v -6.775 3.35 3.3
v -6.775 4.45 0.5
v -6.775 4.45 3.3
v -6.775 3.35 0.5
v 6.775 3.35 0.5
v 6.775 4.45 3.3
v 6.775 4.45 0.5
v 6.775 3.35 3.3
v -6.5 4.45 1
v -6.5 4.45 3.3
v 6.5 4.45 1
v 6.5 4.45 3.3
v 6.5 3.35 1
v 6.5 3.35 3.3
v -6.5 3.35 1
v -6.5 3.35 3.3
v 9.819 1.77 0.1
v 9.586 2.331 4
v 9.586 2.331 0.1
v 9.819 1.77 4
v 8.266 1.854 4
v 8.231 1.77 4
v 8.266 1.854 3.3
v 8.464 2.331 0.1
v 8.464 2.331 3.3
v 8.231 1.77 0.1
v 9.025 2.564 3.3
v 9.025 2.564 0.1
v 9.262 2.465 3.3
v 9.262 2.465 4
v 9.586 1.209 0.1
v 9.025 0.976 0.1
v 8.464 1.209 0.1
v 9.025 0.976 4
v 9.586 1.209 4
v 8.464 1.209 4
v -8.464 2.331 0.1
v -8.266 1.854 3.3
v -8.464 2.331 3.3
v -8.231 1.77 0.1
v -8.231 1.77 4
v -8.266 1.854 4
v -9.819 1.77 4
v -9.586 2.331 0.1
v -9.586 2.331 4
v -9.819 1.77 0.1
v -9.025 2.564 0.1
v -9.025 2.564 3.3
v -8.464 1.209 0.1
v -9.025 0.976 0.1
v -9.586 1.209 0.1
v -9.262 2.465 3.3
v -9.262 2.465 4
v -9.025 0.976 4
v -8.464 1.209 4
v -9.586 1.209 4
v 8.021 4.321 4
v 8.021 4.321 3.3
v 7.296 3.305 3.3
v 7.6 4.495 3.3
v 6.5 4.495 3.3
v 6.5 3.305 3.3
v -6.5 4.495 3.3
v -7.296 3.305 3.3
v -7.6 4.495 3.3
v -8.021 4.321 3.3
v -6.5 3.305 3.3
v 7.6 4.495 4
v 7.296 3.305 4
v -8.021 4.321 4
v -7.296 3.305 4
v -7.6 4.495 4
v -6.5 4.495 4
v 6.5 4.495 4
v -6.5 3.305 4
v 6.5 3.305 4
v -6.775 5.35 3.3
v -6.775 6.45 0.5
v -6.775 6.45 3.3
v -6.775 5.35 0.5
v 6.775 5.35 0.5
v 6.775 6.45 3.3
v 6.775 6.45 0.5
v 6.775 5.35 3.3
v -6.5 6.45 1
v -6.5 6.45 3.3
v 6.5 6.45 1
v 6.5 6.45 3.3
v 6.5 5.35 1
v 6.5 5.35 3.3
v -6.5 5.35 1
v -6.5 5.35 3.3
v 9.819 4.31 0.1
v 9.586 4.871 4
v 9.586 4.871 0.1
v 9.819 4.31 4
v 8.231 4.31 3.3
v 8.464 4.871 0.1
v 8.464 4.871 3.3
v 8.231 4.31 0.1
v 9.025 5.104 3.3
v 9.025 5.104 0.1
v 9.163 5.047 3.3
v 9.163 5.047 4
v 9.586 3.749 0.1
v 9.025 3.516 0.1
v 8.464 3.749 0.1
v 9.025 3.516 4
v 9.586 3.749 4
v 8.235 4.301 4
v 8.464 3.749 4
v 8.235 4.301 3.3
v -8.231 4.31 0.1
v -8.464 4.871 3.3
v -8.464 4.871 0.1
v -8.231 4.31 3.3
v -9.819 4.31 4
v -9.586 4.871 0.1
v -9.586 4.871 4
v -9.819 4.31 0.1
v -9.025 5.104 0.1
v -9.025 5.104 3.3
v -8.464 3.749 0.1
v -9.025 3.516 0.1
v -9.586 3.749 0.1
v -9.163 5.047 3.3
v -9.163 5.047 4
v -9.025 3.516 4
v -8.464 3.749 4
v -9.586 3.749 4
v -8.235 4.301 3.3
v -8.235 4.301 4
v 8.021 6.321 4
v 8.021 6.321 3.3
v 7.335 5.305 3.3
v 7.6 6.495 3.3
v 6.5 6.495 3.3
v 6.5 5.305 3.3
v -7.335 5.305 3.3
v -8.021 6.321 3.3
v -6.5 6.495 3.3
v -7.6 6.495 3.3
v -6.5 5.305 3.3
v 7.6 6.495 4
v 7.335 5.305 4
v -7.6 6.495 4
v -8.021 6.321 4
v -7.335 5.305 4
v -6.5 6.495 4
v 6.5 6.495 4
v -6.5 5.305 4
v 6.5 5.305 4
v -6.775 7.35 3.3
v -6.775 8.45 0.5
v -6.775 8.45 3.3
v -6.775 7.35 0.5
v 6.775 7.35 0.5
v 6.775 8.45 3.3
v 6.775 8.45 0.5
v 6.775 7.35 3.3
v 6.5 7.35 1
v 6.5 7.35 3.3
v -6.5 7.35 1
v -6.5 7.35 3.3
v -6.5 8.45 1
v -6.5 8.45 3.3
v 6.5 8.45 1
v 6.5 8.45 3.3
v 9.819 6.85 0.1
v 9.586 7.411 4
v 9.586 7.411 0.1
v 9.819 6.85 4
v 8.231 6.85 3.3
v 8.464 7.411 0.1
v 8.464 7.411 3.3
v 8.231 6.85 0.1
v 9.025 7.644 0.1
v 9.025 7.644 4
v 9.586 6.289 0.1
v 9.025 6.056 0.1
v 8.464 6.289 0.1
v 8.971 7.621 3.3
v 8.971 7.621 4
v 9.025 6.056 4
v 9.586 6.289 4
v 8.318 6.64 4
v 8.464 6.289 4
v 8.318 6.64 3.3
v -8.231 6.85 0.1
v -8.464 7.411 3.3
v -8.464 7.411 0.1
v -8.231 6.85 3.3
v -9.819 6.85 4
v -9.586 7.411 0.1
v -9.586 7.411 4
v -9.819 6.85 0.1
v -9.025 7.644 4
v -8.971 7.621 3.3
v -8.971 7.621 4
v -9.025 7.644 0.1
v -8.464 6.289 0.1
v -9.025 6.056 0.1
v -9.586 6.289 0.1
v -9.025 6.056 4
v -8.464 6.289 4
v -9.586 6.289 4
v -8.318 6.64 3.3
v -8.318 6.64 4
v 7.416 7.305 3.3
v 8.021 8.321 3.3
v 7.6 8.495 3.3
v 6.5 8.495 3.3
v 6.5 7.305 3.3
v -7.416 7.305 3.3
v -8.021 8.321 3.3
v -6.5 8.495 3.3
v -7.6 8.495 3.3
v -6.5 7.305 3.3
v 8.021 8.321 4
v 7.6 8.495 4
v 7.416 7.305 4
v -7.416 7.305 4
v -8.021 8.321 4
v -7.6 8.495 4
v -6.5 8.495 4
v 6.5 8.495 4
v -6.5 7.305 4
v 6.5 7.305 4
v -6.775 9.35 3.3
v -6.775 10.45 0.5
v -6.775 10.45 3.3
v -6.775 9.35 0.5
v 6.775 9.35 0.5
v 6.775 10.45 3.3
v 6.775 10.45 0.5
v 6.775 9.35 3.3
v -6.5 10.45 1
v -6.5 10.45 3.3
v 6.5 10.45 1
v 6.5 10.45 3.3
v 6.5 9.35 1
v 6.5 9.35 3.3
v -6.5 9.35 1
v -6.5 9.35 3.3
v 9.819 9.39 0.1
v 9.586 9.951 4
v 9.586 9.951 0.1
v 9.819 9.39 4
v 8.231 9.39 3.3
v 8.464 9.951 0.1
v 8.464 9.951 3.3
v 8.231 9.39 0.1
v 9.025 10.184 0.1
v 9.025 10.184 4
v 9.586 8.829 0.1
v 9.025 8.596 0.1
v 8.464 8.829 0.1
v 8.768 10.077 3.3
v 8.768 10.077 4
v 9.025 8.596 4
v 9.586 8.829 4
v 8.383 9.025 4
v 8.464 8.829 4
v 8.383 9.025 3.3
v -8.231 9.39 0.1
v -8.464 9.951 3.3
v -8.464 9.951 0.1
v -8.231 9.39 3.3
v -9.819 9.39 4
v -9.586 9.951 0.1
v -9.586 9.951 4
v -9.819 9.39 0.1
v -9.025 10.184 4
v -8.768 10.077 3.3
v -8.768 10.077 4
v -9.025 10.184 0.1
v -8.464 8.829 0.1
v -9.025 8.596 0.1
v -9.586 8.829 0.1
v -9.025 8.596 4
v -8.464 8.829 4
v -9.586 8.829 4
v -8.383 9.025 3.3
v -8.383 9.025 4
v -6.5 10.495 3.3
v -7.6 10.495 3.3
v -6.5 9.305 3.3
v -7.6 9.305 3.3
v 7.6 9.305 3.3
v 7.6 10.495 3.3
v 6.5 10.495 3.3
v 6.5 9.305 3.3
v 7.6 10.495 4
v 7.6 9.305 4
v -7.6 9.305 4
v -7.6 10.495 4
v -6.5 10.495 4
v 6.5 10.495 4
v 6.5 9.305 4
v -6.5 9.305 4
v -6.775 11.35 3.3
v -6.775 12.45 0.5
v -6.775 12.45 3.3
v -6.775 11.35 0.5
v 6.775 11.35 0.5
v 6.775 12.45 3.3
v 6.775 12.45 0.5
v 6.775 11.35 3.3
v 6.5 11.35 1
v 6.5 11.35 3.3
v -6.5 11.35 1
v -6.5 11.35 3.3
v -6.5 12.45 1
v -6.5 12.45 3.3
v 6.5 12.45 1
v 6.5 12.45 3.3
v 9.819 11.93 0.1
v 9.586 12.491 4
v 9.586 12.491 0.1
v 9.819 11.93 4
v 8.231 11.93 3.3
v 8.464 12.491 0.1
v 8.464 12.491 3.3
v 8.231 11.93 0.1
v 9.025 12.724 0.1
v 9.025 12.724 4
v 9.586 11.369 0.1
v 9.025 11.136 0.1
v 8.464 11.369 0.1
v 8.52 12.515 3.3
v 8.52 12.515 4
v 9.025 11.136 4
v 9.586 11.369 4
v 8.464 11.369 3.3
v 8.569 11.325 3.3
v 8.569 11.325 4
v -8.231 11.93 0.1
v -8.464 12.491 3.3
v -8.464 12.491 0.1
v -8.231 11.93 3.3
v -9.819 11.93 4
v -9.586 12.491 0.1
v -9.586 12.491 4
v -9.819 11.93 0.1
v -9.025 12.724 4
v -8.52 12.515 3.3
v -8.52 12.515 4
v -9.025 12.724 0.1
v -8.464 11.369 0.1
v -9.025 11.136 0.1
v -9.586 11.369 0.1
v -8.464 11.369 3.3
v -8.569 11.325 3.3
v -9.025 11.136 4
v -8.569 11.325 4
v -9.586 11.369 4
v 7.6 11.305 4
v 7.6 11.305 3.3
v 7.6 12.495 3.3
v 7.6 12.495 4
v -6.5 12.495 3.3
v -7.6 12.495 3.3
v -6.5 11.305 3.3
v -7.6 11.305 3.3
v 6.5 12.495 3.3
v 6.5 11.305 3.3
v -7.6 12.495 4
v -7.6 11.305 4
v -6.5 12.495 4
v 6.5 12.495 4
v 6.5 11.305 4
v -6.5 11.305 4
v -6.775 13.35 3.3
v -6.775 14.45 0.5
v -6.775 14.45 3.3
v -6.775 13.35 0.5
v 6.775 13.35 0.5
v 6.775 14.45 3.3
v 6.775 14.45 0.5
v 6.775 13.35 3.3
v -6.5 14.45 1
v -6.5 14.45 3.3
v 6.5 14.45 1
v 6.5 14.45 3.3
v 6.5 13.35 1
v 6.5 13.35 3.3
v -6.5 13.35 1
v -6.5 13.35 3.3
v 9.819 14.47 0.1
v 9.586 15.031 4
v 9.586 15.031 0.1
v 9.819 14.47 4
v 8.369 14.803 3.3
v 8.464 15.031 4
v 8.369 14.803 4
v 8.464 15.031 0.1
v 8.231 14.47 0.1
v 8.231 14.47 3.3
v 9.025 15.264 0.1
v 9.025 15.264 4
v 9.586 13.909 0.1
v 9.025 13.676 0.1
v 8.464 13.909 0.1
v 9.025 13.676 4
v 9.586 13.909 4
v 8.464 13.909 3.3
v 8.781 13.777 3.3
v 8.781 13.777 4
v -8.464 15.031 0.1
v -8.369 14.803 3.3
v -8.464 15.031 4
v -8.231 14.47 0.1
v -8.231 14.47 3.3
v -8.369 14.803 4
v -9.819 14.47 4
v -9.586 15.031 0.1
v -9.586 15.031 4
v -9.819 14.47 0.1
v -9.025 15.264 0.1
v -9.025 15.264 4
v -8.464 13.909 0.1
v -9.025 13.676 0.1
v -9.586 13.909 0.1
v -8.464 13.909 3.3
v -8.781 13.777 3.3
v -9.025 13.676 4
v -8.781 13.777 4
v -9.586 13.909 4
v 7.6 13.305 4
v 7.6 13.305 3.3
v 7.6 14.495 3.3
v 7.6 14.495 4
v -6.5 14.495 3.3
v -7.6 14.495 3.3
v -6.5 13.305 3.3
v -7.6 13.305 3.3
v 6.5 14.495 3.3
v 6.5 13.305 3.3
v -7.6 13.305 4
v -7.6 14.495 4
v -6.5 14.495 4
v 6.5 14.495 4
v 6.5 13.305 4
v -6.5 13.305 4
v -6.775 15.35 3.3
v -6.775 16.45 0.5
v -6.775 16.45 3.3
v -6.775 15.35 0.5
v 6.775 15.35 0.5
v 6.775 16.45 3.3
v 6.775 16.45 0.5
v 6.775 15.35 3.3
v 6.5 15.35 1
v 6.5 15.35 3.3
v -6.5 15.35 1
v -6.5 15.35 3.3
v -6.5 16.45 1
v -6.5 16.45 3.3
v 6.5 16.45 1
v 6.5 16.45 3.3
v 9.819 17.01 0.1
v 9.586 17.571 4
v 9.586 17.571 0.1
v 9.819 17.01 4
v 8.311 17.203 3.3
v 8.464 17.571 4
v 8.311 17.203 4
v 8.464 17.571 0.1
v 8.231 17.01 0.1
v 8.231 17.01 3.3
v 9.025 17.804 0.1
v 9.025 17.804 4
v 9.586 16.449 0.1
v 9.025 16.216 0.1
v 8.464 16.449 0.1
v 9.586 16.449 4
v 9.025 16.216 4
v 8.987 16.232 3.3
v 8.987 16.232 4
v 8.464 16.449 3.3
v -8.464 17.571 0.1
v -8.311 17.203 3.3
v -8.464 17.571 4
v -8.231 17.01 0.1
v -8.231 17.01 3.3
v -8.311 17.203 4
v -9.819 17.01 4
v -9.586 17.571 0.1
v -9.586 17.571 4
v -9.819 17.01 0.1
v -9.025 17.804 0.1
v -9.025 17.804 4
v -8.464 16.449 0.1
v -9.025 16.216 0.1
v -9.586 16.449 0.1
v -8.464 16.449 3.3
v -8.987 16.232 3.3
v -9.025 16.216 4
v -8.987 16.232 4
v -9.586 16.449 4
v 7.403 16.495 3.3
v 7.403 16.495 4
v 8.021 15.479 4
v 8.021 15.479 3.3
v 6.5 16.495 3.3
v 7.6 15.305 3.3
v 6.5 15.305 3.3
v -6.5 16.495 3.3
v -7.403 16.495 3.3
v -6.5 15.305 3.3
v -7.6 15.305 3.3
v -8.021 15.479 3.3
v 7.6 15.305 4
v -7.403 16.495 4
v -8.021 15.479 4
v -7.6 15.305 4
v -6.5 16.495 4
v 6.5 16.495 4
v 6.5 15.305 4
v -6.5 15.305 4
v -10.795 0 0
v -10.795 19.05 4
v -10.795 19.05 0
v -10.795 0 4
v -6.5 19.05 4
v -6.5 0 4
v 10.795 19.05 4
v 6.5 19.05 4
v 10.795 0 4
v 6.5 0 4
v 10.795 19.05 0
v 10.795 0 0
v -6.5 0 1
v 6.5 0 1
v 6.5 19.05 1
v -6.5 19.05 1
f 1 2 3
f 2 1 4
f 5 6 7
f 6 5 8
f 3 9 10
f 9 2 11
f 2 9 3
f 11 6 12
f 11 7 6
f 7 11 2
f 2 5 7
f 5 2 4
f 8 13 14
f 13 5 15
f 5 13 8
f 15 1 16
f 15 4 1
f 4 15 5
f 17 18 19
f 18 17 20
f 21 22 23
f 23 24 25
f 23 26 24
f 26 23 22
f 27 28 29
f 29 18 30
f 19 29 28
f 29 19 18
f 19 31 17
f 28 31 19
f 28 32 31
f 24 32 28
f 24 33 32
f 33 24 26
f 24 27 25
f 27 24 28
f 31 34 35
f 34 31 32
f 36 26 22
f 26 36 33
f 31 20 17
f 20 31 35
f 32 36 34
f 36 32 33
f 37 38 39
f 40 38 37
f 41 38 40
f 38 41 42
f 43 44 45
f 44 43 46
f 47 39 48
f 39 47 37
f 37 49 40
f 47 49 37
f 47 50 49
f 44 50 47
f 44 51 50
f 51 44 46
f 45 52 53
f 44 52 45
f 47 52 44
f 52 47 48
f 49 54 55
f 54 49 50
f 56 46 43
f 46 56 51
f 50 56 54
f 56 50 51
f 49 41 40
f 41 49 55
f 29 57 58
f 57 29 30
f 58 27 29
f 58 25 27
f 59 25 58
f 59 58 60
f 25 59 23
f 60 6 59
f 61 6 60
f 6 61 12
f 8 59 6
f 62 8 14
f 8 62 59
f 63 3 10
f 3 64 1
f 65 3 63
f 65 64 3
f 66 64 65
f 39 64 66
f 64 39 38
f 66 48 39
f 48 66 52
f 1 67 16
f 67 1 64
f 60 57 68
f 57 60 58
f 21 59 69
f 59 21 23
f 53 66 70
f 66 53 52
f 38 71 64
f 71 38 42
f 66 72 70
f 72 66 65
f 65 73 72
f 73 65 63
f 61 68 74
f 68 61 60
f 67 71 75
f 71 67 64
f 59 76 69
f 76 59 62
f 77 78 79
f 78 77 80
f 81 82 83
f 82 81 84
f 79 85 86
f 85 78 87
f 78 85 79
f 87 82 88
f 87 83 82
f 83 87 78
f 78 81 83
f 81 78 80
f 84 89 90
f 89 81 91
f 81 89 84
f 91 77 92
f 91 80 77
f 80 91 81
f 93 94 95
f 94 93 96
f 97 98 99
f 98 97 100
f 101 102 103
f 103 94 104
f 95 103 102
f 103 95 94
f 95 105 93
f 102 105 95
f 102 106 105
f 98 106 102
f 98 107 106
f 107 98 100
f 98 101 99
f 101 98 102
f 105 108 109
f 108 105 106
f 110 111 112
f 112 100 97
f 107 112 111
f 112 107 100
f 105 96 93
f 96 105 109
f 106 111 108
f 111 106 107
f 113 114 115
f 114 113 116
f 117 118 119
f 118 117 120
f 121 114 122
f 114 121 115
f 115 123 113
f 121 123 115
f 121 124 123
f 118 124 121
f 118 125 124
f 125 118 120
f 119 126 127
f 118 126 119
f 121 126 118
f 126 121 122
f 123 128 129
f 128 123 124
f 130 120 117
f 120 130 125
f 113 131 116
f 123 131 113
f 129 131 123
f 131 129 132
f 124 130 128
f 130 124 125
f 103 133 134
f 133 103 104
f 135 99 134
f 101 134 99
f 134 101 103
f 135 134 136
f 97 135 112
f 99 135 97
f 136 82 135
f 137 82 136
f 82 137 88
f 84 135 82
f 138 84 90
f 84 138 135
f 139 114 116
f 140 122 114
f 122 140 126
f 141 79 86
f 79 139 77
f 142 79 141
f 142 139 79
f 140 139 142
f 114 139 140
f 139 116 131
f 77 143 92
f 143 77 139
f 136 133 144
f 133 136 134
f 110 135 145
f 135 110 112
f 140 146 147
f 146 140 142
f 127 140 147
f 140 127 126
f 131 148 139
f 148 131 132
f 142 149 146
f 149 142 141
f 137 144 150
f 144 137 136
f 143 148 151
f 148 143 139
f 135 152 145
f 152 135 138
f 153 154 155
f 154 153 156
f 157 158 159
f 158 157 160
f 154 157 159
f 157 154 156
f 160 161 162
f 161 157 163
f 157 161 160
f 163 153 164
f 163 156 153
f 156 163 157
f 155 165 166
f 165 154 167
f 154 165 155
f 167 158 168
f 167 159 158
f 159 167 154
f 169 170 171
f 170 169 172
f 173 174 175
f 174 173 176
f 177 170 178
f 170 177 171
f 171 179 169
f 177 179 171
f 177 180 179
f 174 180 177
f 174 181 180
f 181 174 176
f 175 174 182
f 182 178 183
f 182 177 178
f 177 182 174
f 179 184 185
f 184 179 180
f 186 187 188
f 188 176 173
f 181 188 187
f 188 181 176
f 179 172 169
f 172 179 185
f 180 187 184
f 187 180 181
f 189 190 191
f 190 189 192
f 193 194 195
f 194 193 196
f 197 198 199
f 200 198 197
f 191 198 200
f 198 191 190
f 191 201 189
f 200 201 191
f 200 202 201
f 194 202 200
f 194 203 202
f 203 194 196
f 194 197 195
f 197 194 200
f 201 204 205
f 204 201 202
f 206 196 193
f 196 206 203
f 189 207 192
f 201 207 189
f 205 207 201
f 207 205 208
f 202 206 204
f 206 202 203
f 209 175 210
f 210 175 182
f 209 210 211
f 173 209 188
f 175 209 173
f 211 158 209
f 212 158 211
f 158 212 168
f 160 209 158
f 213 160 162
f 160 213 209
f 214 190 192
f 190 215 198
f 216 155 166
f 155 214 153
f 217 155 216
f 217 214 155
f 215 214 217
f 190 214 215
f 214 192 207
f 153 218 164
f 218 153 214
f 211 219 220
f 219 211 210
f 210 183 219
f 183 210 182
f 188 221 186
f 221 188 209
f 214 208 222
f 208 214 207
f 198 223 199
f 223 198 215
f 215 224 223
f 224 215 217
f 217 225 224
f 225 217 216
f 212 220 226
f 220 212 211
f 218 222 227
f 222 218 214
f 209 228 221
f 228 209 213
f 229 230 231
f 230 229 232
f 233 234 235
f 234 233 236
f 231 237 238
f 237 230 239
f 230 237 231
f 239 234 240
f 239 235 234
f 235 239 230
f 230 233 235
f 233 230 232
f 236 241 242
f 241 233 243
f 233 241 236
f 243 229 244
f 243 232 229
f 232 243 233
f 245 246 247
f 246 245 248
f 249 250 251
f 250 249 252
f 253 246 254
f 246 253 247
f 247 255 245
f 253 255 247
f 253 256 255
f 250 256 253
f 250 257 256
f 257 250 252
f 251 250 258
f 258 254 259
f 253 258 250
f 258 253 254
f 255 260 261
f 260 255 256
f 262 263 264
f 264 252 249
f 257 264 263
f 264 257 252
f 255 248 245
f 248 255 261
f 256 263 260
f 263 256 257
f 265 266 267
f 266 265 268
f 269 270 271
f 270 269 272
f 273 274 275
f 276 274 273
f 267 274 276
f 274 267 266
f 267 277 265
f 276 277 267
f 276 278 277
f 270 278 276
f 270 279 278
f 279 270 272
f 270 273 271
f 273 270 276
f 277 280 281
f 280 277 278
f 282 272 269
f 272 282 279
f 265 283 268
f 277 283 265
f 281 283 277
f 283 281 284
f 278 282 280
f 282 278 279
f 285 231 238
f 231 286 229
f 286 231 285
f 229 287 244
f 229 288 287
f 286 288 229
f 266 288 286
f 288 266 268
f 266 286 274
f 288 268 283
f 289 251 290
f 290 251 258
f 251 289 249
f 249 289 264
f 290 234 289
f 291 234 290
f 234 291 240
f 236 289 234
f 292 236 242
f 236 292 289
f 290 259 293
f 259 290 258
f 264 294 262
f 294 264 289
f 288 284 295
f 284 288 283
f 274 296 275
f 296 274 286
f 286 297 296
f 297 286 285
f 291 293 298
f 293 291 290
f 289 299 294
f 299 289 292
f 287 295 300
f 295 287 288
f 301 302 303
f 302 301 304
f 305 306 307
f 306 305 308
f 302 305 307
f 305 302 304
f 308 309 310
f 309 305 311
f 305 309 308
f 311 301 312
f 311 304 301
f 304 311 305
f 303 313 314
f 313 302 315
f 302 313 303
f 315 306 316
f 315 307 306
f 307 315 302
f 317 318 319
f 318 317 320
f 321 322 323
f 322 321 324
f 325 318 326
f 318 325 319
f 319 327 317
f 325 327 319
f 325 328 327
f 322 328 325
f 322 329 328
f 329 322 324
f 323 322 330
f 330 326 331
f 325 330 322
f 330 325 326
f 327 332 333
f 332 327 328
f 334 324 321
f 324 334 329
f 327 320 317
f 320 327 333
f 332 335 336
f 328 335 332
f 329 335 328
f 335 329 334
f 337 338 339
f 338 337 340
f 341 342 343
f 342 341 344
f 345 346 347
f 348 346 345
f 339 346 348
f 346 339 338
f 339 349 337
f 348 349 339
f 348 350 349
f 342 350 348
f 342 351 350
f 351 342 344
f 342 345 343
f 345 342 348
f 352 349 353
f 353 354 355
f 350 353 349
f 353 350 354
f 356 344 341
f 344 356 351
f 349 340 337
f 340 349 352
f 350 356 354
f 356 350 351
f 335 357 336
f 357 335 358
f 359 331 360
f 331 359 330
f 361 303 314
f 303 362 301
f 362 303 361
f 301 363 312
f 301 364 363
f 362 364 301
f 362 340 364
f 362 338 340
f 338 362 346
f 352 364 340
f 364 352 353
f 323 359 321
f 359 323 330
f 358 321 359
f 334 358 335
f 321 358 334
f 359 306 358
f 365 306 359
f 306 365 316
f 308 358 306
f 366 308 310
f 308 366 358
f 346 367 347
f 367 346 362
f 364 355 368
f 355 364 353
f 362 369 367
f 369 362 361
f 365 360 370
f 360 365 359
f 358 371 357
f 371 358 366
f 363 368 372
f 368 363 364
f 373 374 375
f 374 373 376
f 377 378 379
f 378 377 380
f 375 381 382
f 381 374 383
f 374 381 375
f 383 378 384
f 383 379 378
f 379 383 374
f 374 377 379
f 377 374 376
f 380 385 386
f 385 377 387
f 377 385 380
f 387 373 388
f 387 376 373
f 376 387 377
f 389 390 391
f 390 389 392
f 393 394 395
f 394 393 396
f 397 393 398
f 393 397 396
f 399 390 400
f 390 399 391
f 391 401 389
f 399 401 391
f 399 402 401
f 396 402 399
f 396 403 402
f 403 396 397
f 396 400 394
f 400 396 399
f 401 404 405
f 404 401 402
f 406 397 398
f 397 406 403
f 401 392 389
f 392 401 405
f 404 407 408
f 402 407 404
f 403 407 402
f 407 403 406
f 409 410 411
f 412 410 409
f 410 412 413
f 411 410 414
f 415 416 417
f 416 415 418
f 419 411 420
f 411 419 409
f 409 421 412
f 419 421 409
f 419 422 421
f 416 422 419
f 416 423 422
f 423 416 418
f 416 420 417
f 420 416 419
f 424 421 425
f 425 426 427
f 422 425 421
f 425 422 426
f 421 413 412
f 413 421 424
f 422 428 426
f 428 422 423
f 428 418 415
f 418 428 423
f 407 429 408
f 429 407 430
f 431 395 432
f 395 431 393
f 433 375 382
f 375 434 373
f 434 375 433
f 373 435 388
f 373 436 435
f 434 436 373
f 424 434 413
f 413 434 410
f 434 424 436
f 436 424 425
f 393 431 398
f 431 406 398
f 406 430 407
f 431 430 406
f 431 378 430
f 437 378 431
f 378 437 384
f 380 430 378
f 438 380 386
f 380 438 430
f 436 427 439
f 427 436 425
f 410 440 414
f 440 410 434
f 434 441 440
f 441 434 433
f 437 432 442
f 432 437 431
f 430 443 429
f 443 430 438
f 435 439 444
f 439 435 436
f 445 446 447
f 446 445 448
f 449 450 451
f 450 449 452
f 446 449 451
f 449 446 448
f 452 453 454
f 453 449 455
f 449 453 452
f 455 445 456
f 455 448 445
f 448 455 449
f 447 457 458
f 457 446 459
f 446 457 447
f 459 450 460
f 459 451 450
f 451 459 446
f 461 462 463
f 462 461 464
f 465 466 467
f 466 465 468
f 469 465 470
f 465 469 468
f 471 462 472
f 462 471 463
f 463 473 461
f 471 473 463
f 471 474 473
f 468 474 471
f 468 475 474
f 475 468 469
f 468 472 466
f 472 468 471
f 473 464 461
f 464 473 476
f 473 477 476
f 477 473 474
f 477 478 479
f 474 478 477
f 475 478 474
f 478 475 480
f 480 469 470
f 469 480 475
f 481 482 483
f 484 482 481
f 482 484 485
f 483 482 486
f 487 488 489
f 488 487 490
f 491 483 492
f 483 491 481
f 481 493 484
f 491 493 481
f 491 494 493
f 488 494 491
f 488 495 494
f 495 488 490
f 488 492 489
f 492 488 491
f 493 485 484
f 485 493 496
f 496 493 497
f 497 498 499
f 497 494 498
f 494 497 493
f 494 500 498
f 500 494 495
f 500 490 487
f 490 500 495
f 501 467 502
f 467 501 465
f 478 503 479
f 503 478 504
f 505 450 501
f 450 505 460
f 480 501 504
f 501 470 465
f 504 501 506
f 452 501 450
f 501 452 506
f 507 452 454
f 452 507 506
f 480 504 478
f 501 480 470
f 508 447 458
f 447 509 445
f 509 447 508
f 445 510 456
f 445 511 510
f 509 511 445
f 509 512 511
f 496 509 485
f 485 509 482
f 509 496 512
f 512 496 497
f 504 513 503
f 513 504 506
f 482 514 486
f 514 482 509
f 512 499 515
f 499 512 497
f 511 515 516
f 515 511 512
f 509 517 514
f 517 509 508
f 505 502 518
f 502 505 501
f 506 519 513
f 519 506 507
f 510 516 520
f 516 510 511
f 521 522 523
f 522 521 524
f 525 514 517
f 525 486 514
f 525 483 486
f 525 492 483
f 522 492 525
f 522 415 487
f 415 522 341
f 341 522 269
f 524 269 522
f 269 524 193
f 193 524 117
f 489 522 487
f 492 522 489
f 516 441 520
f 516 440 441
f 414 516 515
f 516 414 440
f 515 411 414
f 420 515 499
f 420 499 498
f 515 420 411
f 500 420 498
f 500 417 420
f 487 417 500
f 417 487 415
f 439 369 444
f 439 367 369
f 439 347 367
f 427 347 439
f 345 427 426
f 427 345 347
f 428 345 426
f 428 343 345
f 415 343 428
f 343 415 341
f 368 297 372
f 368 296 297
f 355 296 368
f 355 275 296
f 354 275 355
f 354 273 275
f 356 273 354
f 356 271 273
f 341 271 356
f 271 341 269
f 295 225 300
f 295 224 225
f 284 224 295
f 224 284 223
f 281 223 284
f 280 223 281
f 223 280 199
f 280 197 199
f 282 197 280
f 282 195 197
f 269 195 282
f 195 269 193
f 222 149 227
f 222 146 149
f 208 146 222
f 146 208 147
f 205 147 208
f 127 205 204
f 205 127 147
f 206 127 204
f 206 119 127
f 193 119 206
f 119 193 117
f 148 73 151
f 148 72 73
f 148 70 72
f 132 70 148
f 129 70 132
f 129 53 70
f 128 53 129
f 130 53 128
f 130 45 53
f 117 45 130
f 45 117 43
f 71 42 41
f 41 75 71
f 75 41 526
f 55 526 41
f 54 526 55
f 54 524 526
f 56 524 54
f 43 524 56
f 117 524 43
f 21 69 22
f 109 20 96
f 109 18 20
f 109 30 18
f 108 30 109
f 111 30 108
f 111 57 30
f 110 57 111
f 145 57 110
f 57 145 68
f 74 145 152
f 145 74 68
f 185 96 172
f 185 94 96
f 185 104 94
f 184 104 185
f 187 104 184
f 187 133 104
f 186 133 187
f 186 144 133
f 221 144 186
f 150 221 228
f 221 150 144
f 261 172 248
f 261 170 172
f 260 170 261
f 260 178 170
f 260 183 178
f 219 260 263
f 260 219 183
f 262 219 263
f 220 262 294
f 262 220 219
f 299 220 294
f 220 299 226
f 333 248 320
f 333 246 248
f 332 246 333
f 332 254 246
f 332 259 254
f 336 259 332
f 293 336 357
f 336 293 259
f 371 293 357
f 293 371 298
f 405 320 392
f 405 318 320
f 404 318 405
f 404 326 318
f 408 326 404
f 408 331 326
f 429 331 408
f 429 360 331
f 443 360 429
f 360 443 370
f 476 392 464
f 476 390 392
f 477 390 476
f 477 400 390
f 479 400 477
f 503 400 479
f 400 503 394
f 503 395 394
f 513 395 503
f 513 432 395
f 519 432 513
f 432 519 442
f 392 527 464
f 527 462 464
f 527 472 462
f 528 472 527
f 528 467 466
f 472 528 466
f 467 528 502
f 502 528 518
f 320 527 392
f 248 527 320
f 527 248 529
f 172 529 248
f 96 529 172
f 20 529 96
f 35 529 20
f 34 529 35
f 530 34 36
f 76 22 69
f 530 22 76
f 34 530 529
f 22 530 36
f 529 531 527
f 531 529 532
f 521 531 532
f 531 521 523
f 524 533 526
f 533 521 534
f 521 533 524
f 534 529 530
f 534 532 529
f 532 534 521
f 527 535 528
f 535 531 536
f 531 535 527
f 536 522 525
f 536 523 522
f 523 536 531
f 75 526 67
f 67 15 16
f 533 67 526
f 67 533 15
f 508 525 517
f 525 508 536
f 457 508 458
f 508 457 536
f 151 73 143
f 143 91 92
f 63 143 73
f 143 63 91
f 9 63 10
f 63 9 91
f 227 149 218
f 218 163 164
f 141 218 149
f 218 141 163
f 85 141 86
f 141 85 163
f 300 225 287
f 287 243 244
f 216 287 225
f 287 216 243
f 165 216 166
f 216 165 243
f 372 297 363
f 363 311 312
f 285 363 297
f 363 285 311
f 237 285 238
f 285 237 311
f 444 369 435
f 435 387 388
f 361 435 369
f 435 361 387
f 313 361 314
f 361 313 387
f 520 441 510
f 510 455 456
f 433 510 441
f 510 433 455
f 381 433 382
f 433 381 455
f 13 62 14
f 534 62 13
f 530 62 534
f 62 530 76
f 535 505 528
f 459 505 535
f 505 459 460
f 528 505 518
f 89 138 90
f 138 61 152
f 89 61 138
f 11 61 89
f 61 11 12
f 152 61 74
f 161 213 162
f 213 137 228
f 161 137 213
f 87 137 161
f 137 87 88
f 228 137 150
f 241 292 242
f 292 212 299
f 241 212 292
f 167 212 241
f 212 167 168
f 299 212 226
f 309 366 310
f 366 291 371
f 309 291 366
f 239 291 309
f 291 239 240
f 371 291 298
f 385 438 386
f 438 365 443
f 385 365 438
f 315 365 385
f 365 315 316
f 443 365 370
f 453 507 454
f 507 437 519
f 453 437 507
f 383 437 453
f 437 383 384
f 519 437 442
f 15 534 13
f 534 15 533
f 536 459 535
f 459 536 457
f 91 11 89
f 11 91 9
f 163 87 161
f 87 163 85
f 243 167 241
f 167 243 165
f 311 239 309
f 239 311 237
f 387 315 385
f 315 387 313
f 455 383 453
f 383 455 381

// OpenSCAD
esp_w = 13; // inside space width
esp_l = 20;
esp_ps = 2.0; // pin spacing
esp_po = 1.3; // pin offset of first pin from side (aligned)
esp_po = 3.9; // pin offset of first pin from side (centered)
esp_pc = 7; // pin count (one side)
esp_h = 4	; // ESP Socket height
esp_d = 1;

wd = 1.1; // wire diameter

sw = 8.5; // 7*2.54; // width of chasis
sl = 7.5; // length of chassis, have to extend esp_l for inner space

x_offset_from_outer_wall = -0.5;
x_offset_from_inner_wall = 0;

y_offset_outer_wire = 0.5;


difference() {
	// base block;
	translate([-sw*2.54/2,0,0]) cube([sw*2.54,sl*2.54,esp_h]);
	// esp body
	translate([-esp_w/2,0,1]) cube([esp_w,esp_l,5]);


	for(i = [1:esp_pc]) {
		// middle wire bevel
		translate([0,esp_po+(i-1)*esp_ps,3])
			cube([esp_w+wd*0.5,wd,5],center=true);

		// right side outter wire hole
		translate([((sw-1)*2.54)/2+x_offset_from_outer_wall,2.54/2+(i-1)*2.54+y_offset_outer_wire,esp_h/2+0.1])
			#cylinder(r=wd/1.5/cos(180/8),h=esp_h,$fn=8,center=true);
		
		// left side outter wire hole	
		translate([((sw-1)*2.54)/-2-x_offset_from_outer_wall,2.54/2+(i-1)*2.54+y_offset_outer_wire,esp_h/2+0.1])
			#cylinder(r=wd/1.5/cos(180/8),h=esp_h,$fn=8,center=true);

		// right side wire bevel
		hull() {
			translate([((sw-1)*2.54)/2+x_offset_from_outer_wall,2.54/2+(i-1)*2.54+y_offset_outer_wire,esp_h])
				#cylinder(r=wd/2/cos(180/8),h=1.4,$fn=8,center=true);
			translate([esp_w/2+wd+x_offset_from_inner_wall,esp_po+(i-1)*esp_ps,esp_h])
				#cylinder(r=wd/2/cos(180/8),h=1.4,$fn=8,center=true);
		}

		// left side wire bevel
		hull() {
			translate([((sw-1)*2.54)/-2-x_offset_from_outer_wall,2.54/2+(i-1)*2.54+y_offset_outer_wire,esp_h])
				#cylinder(r=wd/2/cos(180/8),h=1.4,$fn=8,center=true);
			translate([-esp_w/2-wd-x_offset_from_inner_wall,esp_po+(i-1)*esp_ps,esp_h])
				#cylinder(r=wd/2/cos(180/8),h=1.4,$fn=8,center=true);
		}

		// both sides inner wire bevel
		// also the inner wire holes
		hull() {
			// right side inner wire holes
			translate([esp_w/2+wd+x_offset_from_inner_wall,esp_po+(i-1)*esp_ps,esp_h])
				#cylinder(r=wd/2/cos(180/8),h=1.4,$fn=8,center=true);
				// left side inner wire holes
			translate([-esp_w/2-wd-x_offset_from_inner_wall,esp_po+(i-1)*esp_ps,esp_h])
				#cylinder(r=wd/2/cos(180/8),h=1.4,$fn=8,center=true);
		}

	}

}


module esp_dummy() {
	translate([-esp_w/2,0,1.2]) cube([esp_w,esp_l,1.1]);
}
